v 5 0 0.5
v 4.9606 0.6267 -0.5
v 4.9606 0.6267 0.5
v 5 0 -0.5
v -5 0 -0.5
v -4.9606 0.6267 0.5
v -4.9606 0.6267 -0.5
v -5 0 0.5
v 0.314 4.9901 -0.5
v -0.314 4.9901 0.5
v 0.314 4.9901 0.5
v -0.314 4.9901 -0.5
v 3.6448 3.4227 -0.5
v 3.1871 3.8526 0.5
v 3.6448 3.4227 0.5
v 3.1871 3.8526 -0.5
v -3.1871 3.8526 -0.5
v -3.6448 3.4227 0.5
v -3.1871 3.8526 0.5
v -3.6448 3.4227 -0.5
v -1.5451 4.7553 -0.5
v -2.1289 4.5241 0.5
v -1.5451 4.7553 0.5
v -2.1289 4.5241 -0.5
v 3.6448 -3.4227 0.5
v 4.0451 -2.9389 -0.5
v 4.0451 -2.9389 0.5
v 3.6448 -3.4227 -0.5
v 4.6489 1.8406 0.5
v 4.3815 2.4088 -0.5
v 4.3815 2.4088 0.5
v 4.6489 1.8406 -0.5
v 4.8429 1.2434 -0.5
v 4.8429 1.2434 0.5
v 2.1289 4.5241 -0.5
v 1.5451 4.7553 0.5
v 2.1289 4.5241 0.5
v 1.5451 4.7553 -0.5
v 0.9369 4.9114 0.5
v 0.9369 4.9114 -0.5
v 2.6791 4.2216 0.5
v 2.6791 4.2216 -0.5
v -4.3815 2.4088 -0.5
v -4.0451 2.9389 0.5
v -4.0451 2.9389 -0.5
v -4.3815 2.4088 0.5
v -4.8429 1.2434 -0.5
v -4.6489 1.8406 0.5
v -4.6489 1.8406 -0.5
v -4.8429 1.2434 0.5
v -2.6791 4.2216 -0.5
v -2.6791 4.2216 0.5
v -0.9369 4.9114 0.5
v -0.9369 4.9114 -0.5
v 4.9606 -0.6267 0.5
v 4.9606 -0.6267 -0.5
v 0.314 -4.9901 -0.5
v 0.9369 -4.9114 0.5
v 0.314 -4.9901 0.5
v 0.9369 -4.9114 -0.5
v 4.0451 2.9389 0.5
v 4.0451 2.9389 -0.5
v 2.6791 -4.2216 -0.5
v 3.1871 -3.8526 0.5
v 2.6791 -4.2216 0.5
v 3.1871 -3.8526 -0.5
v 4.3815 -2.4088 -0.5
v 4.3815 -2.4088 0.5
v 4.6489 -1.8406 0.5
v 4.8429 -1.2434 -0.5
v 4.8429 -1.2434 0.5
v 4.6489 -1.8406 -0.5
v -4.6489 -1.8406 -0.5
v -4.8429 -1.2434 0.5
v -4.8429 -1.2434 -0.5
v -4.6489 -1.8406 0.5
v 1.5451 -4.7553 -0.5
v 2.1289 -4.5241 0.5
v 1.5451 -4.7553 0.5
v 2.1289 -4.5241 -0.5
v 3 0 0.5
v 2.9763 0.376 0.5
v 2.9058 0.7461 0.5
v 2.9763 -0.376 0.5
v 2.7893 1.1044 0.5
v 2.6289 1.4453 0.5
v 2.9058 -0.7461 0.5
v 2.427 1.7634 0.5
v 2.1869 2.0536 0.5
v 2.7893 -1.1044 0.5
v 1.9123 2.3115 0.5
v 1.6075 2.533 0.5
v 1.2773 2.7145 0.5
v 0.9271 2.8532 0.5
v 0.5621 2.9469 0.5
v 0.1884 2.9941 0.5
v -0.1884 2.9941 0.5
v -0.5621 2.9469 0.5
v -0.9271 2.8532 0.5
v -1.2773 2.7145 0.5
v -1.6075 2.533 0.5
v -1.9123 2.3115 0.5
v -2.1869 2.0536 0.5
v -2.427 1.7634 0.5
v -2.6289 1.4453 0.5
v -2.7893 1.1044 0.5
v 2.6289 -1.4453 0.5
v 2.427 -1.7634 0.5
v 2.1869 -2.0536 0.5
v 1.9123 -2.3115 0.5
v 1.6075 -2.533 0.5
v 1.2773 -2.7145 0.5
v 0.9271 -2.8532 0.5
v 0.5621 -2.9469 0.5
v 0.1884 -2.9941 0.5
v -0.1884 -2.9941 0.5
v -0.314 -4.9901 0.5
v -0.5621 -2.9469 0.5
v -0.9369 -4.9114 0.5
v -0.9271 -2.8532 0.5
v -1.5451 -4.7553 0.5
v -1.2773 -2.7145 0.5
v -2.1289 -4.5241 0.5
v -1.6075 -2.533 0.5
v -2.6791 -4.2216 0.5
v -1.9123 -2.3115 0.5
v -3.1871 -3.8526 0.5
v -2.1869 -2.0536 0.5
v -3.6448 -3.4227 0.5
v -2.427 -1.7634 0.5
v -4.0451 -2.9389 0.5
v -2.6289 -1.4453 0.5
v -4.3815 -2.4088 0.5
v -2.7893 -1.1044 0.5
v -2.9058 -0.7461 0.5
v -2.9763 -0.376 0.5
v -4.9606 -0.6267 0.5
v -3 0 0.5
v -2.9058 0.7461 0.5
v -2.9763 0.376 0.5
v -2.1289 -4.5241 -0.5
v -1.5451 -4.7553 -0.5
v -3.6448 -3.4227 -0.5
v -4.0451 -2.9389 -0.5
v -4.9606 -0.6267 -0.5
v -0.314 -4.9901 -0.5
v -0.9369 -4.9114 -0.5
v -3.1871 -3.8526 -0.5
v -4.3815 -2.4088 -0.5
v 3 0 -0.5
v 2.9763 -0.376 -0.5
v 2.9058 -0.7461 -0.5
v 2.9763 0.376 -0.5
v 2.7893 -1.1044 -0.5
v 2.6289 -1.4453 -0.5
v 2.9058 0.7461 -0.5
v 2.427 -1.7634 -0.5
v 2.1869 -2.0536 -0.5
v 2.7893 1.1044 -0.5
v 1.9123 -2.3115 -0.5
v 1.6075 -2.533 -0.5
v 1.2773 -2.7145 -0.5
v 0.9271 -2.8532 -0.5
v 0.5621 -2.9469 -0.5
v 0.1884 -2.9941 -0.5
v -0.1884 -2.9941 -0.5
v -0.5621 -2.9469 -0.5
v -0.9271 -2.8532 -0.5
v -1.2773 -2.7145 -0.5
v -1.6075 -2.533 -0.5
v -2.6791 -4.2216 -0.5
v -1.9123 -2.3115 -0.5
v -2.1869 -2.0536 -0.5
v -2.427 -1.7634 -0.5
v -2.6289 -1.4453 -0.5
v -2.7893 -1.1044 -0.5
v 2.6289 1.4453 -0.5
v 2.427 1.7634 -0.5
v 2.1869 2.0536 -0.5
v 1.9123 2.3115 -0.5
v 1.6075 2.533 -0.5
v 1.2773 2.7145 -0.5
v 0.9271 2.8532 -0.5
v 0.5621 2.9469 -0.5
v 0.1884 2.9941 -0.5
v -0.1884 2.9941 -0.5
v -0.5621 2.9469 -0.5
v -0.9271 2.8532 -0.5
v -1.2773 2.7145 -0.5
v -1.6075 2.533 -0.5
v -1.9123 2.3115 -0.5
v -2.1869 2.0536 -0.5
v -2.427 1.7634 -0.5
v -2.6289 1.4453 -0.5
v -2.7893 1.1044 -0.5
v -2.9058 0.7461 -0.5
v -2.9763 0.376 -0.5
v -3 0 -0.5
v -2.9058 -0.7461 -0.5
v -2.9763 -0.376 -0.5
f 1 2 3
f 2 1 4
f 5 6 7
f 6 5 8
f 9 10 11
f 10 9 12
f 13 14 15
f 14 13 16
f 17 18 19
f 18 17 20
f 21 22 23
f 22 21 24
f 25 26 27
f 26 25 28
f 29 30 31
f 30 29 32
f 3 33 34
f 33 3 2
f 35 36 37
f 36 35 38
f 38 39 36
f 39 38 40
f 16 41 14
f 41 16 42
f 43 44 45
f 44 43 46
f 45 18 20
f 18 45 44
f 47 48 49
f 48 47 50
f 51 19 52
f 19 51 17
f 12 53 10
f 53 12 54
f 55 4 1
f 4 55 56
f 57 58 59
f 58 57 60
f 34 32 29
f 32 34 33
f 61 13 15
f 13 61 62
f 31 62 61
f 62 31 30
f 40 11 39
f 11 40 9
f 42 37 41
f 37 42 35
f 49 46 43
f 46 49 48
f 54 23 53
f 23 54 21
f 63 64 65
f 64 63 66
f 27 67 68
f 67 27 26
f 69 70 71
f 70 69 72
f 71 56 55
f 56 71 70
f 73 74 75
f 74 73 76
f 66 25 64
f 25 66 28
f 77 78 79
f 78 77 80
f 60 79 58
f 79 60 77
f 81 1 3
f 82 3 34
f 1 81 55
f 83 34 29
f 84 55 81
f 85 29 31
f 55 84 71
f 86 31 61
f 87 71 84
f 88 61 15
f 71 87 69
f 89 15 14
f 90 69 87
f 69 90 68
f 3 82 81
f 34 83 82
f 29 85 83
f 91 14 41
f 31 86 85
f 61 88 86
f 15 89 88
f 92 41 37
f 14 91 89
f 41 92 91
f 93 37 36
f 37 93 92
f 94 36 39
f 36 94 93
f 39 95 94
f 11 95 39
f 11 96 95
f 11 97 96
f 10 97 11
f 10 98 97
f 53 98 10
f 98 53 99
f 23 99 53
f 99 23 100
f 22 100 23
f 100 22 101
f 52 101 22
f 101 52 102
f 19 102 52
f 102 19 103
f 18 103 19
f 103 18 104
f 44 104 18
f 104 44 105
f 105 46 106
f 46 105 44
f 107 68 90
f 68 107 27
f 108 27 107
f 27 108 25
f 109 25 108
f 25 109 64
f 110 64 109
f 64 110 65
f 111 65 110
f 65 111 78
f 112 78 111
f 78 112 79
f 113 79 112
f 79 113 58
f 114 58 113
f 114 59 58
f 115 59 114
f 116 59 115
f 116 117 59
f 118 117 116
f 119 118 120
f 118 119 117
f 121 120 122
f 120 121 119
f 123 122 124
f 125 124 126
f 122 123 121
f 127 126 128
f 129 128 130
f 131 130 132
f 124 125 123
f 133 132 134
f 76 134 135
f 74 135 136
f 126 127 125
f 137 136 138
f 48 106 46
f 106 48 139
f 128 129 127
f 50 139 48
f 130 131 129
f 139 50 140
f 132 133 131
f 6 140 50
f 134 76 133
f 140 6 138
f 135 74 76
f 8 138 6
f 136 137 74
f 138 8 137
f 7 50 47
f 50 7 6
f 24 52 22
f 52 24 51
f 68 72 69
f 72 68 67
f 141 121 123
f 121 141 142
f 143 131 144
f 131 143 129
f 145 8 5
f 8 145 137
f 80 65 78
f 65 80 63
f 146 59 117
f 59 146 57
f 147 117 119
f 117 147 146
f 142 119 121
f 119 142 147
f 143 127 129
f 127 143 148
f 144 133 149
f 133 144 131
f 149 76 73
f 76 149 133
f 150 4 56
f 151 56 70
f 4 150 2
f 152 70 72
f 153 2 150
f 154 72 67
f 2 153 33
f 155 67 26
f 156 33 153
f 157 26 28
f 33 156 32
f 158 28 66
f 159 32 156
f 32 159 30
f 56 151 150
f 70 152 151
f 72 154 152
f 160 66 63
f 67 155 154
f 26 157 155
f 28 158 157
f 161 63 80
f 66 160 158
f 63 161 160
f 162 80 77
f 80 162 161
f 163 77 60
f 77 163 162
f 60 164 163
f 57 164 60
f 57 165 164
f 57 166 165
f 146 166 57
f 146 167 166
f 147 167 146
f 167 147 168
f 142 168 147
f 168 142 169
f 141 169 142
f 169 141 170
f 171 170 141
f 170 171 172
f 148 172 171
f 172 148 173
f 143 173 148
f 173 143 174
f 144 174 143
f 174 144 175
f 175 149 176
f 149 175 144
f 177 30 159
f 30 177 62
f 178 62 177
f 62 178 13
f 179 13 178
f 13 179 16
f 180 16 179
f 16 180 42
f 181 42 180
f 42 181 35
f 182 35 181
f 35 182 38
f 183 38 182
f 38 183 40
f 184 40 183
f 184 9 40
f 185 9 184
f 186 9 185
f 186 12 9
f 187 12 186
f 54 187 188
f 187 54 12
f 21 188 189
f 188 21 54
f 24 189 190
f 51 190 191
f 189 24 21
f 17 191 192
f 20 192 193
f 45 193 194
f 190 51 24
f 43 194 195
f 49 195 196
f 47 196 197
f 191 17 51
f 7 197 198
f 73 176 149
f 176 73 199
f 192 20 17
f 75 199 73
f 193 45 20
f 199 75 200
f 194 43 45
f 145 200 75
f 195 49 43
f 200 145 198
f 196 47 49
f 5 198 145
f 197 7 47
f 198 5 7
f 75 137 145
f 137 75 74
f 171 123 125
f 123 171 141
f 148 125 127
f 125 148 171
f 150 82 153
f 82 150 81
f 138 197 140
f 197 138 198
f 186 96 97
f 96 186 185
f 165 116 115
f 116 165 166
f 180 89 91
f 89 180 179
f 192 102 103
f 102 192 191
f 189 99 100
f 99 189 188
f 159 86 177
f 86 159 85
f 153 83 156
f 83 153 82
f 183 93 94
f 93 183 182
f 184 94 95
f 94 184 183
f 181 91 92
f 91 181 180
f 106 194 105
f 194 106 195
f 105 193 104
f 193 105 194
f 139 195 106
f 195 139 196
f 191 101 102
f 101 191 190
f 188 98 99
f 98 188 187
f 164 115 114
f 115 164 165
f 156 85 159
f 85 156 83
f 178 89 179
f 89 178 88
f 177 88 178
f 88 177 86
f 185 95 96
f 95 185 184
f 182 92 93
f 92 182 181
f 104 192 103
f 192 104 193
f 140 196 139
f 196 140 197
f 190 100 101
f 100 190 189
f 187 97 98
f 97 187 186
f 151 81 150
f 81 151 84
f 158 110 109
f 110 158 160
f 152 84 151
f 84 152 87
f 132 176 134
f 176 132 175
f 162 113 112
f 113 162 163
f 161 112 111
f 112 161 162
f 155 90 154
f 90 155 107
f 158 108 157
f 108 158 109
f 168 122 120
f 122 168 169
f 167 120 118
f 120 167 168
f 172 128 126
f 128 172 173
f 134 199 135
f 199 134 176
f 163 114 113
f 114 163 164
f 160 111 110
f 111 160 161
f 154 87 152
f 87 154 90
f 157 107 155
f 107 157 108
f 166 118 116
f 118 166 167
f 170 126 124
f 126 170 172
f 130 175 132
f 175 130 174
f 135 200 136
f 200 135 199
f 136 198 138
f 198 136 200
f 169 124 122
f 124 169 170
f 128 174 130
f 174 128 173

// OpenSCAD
$fn = 50;


difference() {
	union() {
		translate(v = [0, 0, -0.5000000000]) {
			cylinder(h = 1, r = 5.0000000000);
		}
	}
	union() {
		translate(v = [0, 0, -100.0000000000]) {
			cylinder(h = 200, r = 3.0000000000);
		}
	}
}
